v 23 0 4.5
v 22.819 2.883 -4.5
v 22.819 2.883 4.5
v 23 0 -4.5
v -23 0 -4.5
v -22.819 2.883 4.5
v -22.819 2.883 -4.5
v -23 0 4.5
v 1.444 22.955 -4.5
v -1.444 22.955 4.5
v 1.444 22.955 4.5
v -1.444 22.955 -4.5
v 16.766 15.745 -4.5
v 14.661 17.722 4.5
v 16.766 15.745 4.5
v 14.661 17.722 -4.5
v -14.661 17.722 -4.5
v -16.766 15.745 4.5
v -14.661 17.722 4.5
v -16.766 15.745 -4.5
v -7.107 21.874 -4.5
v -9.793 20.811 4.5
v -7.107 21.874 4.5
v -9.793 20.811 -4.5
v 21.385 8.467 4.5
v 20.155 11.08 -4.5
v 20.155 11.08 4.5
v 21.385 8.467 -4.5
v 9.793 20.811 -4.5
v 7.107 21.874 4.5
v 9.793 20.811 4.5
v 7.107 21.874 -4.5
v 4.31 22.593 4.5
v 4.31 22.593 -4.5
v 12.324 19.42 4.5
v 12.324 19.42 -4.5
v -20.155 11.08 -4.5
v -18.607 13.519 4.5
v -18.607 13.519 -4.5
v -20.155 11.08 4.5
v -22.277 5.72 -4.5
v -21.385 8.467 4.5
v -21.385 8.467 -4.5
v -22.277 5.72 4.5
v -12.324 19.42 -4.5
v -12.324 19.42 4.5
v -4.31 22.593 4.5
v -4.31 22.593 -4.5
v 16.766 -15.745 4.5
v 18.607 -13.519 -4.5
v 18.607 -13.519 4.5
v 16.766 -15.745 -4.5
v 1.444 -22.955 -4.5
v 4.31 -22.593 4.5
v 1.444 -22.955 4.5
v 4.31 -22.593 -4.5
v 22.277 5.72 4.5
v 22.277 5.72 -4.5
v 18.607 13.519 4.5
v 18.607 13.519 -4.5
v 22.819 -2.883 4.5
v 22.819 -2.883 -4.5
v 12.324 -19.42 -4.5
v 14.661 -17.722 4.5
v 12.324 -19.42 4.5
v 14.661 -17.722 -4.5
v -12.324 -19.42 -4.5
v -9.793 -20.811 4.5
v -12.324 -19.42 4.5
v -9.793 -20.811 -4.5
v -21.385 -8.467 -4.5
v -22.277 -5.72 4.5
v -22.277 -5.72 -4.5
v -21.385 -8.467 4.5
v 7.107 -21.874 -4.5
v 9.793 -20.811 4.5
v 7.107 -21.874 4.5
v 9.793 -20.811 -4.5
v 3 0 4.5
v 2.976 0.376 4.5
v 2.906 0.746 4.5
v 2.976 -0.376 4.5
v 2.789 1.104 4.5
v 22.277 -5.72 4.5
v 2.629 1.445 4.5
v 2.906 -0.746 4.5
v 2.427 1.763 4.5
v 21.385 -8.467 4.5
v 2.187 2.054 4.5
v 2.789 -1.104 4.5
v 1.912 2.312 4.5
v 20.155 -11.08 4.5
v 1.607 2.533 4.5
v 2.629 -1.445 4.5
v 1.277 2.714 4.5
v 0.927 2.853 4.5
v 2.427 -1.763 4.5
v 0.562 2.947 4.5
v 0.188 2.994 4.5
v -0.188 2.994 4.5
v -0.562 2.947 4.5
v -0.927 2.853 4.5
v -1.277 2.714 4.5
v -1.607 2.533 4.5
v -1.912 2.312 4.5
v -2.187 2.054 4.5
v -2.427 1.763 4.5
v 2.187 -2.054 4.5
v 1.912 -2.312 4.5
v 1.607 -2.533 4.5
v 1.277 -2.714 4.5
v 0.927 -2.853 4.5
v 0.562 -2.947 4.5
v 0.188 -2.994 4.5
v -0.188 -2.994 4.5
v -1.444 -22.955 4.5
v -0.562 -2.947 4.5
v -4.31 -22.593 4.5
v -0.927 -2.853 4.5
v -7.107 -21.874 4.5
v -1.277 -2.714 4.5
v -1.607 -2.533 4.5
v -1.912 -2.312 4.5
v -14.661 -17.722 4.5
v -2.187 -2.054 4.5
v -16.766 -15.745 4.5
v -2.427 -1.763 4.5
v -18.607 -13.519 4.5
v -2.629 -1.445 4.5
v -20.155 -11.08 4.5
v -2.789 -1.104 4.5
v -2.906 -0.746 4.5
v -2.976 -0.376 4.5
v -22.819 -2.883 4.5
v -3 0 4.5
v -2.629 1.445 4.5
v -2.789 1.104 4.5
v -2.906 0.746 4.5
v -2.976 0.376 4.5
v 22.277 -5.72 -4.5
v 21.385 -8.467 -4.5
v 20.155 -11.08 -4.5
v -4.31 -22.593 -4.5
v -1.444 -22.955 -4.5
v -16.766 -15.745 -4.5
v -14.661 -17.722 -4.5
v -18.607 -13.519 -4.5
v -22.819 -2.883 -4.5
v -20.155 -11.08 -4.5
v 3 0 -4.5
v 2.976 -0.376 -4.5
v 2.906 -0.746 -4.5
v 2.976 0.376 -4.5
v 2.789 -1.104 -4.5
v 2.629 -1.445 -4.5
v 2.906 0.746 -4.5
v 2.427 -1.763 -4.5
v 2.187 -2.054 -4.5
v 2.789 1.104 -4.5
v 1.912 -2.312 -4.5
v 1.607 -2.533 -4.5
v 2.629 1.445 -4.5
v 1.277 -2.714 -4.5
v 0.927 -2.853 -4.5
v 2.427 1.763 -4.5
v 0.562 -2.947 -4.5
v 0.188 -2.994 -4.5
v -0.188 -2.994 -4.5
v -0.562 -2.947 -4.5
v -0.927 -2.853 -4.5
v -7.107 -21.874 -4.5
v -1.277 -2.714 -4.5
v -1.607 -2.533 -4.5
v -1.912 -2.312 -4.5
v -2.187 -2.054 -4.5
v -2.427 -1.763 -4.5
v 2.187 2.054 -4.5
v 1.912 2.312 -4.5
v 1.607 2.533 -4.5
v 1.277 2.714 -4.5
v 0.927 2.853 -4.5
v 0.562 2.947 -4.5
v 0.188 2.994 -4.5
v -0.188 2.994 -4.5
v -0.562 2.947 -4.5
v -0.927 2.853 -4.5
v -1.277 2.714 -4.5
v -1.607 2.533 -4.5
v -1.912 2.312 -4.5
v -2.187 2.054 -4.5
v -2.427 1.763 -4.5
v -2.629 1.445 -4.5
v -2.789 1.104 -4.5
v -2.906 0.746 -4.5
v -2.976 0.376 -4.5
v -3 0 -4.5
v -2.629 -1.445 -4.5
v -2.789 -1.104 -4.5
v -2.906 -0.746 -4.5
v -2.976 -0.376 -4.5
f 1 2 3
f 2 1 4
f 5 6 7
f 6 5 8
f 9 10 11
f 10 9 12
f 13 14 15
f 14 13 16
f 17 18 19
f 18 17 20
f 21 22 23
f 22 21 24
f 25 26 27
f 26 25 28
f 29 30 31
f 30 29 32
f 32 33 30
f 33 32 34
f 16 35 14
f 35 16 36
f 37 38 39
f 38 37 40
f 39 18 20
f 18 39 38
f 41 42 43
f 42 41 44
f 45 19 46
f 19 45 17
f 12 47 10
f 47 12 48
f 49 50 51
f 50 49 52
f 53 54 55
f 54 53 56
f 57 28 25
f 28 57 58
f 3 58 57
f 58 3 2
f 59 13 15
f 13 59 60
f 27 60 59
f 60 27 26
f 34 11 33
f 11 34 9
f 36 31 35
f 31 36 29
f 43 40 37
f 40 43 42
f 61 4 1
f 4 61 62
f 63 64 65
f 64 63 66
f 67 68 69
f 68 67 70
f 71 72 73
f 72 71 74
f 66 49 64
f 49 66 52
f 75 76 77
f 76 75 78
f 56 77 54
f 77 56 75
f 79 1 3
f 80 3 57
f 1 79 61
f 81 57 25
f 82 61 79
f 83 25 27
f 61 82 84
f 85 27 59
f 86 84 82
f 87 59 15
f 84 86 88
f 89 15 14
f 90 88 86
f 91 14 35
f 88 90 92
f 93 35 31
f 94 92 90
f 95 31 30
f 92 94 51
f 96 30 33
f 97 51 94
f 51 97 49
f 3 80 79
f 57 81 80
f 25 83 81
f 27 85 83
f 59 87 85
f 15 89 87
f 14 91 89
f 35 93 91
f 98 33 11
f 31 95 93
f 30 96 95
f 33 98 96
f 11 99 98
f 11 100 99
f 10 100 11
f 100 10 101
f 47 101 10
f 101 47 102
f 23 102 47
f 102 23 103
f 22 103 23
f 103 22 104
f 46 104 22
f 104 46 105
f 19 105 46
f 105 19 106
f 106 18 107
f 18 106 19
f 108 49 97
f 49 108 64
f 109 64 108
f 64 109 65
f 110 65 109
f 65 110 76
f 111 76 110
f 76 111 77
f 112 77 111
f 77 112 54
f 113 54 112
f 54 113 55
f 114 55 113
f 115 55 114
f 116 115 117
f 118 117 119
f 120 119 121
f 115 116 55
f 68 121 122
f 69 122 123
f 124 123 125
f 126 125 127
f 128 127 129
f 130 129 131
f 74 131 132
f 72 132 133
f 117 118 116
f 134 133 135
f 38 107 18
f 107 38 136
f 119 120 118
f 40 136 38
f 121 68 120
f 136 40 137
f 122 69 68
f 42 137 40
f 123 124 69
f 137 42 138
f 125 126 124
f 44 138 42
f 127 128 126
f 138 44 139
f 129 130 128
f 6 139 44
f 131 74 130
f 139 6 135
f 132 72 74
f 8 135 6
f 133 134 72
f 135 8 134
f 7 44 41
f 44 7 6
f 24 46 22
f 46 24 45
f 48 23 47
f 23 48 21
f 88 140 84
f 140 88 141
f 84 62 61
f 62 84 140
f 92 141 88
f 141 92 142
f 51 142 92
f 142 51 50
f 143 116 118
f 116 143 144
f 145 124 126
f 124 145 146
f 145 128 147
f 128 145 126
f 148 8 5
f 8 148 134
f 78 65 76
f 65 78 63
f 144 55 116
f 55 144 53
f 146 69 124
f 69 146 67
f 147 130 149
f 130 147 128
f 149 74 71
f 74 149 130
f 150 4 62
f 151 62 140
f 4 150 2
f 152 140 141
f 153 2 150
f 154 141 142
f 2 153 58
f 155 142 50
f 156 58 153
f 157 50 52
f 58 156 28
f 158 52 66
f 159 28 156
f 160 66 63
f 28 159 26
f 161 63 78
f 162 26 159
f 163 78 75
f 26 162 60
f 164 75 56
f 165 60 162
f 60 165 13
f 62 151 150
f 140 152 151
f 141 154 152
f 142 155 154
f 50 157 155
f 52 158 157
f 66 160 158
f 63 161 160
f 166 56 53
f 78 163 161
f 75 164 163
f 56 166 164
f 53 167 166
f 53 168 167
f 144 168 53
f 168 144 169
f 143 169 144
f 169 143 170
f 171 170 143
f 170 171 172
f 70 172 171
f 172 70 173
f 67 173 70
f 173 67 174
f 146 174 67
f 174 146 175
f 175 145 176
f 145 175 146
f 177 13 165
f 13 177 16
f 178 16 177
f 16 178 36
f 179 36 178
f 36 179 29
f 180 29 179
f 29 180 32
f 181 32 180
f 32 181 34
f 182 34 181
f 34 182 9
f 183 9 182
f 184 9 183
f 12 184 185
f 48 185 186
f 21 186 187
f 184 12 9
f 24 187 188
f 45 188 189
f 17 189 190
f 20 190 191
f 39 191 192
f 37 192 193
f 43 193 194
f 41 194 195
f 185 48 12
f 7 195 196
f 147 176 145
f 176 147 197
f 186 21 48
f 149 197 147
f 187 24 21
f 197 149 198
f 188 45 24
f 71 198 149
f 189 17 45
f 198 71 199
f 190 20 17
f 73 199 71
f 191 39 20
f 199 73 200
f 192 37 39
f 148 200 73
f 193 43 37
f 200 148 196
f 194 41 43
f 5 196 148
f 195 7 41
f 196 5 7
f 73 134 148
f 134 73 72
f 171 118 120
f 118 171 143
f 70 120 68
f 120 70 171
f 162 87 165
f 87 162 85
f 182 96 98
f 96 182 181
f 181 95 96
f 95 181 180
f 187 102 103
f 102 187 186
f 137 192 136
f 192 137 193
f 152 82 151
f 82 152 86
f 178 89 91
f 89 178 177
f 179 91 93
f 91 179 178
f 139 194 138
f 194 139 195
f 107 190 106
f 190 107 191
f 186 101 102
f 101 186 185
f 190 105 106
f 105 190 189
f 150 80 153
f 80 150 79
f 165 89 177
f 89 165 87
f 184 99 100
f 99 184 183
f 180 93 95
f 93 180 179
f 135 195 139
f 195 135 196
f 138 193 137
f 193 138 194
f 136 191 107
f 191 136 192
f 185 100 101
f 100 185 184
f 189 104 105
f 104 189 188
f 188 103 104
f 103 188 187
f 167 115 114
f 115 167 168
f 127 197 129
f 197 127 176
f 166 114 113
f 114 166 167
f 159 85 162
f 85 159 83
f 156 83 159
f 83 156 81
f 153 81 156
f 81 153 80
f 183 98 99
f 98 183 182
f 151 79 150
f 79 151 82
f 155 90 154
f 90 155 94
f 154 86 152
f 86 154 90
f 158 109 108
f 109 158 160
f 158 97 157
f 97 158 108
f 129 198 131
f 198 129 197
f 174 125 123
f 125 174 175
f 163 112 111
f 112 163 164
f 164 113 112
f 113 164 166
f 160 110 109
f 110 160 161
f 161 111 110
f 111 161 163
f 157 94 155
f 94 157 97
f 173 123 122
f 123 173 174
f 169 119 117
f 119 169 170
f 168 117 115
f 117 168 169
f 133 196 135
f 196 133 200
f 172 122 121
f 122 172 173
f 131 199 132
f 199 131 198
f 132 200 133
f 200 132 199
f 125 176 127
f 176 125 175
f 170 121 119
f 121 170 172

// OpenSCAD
$fn = 50;


difference() {
	union() {
		translate(v = [0, 0, -4.5000000000]) {
			cylinder(h = 9, r = 23.0000000000);
		}
	}
	union() {
		translate(v = [0, 0, -100.0000000000]) {
			cylinder(h = 200, r = 3.0000000000);
		}
	}
}
